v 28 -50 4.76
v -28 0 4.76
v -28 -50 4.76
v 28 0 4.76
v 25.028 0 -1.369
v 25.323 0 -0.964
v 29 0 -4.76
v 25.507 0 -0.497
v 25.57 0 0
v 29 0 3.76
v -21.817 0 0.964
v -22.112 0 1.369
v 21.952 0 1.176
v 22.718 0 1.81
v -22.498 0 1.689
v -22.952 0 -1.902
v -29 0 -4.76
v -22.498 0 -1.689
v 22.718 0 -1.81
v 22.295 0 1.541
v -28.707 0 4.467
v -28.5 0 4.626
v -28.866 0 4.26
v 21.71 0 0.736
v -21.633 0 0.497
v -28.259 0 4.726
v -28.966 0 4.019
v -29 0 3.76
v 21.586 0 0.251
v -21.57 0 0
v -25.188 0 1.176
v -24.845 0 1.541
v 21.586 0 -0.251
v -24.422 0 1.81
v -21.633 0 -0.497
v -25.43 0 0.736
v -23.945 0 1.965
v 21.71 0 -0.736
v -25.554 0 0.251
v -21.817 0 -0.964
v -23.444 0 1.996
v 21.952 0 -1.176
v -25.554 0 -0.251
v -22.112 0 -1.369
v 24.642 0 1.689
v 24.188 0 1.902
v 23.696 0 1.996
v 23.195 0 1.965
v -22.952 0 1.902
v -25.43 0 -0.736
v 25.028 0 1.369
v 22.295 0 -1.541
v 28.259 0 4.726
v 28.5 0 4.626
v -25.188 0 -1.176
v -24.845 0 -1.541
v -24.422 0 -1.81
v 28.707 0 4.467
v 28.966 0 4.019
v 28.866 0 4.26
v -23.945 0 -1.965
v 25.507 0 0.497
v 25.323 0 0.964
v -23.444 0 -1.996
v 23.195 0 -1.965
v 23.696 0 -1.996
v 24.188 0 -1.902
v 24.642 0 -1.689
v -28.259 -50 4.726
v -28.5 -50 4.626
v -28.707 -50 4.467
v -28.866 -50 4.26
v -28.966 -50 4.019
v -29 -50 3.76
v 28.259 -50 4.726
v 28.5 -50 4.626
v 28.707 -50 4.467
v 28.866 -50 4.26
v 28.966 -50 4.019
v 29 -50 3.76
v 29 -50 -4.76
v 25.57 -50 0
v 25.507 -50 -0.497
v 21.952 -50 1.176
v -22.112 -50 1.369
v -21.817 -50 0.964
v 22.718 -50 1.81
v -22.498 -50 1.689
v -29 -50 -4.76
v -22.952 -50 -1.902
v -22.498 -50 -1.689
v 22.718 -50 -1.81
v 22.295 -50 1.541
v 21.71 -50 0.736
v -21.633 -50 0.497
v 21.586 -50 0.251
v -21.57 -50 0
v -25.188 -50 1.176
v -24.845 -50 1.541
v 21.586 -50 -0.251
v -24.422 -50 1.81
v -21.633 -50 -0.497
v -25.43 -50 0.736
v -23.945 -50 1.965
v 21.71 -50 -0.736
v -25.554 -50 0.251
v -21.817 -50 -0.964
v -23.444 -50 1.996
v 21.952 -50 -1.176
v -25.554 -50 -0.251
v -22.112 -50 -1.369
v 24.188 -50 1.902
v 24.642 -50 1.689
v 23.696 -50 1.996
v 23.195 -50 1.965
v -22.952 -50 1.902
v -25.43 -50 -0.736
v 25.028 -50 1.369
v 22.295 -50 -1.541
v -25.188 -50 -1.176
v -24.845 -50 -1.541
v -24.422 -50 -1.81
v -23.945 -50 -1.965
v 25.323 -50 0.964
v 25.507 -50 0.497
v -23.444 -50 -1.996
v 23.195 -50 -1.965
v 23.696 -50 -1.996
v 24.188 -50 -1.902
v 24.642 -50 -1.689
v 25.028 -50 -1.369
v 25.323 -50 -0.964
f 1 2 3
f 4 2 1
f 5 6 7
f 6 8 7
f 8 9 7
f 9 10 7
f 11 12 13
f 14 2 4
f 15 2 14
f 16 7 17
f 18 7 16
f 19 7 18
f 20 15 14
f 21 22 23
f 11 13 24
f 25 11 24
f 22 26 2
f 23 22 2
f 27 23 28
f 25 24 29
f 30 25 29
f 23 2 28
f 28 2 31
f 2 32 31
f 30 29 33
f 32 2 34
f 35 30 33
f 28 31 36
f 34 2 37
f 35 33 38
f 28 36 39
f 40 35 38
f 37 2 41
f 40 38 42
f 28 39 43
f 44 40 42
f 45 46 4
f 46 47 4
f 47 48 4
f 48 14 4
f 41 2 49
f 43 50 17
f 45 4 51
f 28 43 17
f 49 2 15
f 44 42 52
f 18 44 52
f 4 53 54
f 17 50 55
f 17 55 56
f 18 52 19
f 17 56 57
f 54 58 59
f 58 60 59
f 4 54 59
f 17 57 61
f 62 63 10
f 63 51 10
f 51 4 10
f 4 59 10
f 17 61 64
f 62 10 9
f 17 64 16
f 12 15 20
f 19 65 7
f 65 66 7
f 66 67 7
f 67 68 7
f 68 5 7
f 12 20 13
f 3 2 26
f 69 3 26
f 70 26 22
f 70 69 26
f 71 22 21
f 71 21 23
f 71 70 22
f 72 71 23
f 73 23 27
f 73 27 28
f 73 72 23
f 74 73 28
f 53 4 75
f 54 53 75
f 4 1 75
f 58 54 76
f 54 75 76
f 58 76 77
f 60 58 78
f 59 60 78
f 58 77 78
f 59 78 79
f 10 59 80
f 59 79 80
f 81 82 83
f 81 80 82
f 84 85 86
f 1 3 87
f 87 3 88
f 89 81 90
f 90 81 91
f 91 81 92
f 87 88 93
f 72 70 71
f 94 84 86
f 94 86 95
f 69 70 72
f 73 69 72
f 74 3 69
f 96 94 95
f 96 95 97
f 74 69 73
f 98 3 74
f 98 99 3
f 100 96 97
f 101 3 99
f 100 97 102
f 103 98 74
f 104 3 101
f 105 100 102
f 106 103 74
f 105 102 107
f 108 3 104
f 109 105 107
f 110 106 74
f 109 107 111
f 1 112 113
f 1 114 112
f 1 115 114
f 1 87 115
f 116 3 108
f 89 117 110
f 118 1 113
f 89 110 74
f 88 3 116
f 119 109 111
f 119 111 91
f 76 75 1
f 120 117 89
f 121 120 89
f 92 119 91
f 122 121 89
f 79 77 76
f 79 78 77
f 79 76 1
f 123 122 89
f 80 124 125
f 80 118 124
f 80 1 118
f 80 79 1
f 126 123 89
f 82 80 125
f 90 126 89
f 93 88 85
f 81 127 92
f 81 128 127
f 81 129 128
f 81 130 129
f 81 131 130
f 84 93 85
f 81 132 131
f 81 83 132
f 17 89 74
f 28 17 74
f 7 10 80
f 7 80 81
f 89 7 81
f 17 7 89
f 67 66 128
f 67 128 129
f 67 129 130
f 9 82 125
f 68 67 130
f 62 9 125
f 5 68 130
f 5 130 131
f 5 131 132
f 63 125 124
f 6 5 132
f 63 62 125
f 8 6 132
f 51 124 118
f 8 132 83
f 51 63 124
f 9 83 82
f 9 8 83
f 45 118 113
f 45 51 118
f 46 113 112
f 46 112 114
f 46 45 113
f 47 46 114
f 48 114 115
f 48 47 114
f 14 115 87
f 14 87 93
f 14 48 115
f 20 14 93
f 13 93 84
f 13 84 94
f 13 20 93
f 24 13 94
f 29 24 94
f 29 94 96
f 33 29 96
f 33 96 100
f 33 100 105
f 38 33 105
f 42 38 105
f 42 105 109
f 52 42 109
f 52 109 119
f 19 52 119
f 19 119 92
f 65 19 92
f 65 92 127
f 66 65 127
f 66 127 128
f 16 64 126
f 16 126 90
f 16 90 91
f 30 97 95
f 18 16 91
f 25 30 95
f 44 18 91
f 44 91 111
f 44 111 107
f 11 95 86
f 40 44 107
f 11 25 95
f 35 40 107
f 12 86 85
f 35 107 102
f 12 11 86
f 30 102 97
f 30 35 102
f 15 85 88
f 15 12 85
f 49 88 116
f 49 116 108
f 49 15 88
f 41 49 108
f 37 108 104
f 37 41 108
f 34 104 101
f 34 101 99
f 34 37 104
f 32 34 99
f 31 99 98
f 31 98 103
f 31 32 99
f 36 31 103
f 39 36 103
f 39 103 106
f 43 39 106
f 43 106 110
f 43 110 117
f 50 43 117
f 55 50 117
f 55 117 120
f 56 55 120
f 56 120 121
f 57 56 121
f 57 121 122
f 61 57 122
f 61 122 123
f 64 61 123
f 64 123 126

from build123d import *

# Parameters (mm, degrees)
SKETCH_W  = 58
SKETCH_H  = 9.52
SKETCH_R  = 2
PAD_DEPTH = 50
FILLET_R  = 1


with BuildPart() as part:
    # Sketch → Pad (new body)
    with BuildSketch(Plane.XZ):
        Rectangle(SKETCH_W, SKETCH_H)
        with Locations((-23.57, 0)):
            Circle(SKETCH_R, mode=Mode.SUBTRACT)
        with Locations((23.57, 0)):
            Circle(SKETCH_R, mode=Mode.SUBTRACT)
    extrude(amount=PAD_DEPTH)

    # Fillet
    fillet_edges = [part.edges().sort_by_distance(p)[0] for p in [
        (29, -25, 4.76),
        (-29, -25, 4.76),
    ]]
    fillet(fillet_edges, radius=FILLET_R)


solid = part.part
